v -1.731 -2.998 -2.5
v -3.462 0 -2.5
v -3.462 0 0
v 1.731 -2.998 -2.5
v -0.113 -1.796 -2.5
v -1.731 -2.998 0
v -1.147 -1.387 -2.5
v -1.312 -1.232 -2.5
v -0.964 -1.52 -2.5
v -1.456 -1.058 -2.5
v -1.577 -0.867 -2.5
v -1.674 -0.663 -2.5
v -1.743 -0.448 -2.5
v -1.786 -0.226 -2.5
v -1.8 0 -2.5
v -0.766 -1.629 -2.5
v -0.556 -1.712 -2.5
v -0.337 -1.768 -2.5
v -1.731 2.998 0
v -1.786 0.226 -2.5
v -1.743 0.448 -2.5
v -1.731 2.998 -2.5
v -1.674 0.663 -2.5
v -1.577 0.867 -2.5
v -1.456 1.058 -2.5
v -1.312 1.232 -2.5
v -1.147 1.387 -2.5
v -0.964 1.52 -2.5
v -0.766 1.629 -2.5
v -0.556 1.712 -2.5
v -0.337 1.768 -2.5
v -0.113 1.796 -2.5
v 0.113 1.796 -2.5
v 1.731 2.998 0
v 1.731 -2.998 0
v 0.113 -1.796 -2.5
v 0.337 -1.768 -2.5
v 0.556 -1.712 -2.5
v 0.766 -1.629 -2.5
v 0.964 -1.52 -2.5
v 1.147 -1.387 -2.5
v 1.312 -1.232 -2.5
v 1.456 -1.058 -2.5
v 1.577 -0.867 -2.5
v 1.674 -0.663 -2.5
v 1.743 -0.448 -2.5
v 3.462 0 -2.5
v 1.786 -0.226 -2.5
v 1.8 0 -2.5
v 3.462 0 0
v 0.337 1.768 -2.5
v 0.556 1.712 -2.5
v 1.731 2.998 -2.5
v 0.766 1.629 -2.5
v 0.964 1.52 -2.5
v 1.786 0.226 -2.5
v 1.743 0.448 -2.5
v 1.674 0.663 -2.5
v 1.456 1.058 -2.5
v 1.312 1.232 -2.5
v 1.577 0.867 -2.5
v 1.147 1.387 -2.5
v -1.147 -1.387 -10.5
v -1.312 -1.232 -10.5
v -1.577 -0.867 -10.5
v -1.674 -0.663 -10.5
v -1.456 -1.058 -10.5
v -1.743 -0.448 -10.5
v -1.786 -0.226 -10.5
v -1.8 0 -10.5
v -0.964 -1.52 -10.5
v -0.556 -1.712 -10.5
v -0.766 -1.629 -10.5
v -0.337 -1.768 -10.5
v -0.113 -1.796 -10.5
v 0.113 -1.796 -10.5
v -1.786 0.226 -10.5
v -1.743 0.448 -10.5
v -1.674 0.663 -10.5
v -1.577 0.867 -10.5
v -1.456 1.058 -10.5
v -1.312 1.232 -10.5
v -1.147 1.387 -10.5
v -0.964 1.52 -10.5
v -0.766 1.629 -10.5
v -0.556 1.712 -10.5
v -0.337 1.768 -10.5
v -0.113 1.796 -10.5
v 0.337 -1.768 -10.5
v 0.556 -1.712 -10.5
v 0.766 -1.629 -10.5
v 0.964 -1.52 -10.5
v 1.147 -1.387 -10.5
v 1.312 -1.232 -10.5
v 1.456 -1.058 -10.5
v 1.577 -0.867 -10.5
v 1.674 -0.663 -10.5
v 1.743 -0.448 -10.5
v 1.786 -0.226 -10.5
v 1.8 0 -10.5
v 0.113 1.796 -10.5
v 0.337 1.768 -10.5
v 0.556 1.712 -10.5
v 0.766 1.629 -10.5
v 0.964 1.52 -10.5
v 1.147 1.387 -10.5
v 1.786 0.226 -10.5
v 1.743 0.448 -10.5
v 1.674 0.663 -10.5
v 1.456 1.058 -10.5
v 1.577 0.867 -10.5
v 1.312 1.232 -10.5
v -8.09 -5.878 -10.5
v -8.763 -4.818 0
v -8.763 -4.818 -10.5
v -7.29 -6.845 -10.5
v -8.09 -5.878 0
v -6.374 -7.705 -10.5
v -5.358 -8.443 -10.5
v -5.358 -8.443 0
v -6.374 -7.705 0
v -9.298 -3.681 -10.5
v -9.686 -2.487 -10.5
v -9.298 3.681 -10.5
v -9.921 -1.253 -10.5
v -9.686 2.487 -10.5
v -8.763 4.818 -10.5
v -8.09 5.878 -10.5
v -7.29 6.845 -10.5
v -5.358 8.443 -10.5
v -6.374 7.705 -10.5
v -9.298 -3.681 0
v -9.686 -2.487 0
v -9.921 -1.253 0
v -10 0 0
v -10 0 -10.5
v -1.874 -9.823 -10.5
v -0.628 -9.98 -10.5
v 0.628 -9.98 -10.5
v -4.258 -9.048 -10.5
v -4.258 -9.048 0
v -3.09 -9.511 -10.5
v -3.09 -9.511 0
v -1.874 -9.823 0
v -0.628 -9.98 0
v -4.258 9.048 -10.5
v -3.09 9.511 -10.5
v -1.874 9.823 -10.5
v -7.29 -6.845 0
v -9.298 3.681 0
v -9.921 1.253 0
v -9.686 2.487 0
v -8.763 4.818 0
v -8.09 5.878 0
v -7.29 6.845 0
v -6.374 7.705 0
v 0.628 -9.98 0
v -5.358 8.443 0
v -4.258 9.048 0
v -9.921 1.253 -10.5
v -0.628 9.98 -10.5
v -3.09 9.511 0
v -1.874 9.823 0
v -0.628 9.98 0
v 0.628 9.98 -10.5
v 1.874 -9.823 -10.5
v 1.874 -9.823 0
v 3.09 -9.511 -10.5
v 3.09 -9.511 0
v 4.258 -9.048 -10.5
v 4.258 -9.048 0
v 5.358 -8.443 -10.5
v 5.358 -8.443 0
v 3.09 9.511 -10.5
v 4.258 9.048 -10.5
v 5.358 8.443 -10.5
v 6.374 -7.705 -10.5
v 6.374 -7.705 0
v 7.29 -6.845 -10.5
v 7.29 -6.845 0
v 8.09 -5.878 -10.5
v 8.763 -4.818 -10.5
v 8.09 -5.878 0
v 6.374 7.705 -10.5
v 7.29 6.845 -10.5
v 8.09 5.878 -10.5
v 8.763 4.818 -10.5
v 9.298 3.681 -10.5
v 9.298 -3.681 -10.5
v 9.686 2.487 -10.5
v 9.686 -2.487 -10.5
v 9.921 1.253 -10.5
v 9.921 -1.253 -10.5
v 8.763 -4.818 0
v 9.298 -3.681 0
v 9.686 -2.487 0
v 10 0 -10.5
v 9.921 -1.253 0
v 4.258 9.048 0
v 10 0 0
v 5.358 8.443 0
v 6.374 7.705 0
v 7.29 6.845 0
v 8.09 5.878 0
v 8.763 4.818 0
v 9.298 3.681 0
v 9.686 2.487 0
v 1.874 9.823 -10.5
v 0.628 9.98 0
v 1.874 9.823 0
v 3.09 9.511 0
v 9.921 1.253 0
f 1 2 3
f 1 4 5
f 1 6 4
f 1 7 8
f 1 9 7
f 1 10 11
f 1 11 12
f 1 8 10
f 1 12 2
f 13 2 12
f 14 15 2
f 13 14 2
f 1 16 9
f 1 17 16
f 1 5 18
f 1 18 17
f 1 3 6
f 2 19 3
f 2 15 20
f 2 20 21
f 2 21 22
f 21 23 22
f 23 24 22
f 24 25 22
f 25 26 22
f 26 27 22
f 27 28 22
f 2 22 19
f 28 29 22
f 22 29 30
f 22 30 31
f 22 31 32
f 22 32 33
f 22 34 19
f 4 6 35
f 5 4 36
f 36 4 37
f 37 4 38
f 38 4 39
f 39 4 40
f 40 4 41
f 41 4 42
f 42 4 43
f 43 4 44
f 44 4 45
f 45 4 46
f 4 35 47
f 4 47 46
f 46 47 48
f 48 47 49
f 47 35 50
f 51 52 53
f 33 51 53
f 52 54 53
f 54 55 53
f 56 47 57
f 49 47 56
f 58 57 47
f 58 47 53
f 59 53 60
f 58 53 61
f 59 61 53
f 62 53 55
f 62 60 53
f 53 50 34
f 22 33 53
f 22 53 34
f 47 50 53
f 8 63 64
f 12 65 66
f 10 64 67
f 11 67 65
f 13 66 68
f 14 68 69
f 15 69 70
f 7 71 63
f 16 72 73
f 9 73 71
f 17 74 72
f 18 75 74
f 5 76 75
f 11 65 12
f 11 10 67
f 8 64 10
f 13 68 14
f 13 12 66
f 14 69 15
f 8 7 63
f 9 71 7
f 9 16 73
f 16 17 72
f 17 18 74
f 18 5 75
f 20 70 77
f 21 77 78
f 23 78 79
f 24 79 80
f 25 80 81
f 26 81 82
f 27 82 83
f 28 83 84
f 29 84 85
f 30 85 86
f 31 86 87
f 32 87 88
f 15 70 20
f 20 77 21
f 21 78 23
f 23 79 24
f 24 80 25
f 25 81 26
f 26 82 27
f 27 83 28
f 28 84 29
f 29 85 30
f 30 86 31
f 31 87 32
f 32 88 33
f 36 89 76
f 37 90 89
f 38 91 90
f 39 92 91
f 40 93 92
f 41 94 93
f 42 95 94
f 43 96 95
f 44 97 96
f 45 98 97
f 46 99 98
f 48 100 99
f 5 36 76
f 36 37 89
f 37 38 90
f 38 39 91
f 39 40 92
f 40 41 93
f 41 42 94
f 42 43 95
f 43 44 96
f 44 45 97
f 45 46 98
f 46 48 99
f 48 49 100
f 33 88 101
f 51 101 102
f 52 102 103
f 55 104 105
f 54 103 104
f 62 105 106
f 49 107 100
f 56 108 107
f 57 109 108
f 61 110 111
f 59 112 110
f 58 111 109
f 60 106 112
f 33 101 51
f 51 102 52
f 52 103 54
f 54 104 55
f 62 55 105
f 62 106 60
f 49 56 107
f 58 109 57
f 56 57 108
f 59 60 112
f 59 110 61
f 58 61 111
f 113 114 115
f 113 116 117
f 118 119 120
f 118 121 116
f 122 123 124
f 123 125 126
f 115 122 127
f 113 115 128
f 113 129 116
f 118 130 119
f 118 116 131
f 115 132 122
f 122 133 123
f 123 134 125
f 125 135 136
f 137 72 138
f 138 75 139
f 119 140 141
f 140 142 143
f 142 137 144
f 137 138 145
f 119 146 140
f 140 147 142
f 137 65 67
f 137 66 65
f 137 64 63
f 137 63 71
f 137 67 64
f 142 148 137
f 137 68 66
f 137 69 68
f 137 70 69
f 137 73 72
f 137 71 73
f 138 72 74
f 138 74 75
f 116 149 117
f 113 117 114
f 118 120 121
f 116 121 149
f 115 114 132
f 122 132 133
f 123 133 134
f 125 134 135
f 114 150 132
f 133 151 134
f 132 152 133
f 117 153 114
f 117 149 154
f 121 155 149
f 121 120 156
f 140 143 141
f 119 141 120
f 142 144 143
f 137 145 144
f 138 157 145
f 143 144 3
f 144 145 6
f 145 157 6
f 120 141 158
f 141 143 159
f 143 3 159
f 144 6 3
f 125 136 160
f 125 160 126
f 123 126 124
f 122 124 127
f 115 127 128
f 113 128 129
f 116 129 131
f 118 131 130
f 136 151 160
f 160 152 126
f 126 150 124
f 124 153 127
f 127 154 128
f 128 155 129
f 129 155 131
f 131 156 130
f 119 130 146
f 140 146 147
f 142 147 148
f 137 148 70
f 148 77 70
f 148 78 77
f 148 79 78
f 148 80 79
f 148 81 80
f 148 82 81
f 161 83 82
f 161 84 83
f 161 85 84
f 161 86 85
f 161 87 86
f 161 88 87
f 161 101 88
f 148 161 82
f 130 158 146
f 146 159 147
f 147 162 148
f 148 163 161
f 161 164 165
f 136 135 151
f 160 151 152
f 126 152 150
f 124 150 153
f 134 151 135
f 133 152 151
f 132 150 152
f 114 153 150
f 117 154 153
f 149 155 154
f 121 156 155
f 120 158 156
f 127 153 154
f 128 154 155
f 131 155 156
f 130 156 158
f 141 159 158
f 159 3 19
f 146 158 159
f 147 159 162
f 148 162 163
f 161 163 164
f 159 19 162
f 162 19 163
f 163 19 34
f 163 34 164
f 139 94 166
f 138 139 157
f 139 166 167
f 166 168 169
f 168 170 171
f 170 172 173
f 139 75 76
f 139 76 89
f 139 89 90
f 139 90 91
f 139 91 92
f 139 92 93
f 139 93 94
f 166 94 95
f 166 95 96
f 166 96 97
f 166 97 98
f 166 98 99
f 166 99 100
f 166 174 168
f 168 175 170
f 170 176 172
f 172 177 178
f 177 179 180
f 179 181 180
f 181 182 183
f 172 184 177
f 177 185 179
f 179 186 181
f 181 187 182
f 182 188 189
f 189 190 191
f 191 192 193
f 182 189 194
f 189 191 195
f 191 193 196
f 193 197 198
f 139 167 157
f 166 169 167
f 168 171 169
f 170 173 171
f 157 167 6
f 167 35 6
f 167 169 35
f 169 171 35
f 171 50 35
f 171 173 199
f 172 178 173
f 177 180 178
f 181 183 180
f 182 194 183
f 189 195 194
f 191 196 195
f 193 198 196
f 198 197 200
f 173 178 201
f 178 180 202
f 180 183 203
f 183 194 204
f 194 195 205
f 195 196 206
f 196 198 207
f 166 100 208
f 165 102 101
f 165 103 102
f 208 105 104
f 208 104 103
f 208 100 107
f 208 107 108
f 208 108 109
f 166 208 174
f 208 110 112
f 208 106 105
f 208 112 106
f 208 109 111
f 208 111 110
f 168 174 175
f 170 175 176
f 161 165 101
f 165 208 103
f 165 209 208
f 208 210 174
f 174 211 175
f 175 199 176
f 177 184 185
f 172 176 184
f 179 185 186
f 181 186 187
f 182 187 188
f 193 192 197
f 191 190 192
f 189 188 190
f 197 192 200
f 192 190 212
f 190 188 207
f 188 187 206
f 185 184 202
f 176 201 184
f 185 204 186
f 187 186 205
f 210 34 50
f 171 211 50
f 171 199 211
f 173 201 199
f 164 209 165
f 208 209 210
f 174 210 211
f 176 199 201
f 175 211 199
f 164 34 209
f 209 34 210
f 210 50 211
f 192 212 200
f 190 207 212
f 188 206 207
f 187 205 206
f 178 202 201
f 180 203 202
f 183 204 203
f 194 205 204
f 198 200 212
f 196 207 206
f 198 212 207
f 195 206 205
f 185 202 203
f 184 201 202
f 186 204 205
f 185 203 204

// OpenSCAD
$fn = 50;

difference() {
	union() {
		translate(v = [0, 0, -10.5]) {
			cylinder(h = 10.5, r = 10.0);
		}
	}
	union() {
		translate(v = [0, 0, 0]) {
			rotate(a = [0, 0, 0]) {
				difference() {
					union() {
						translate(v = [0, 0, -2.5]) {
							linear_extrude(height = 2.5) {
								polygon(points = [[3.4619999999999997, 0.0], [1.7310000000000003, 2.9981799479017264], [-1.7309999999999992, 2.9981799479017264], [-3.4619999999999997, 4.2397272186481365e-16], [-1.7310000000000014, -2.998179947901726], [1.7309999999999977, -2.9981799479017277]]);
							}
						}
					}
					union();
				}
			}
		}
		#translate(v = [0, 0, -100.0]) {
			cylinder(h = 200, r = 1.8);
		}
	}
}
